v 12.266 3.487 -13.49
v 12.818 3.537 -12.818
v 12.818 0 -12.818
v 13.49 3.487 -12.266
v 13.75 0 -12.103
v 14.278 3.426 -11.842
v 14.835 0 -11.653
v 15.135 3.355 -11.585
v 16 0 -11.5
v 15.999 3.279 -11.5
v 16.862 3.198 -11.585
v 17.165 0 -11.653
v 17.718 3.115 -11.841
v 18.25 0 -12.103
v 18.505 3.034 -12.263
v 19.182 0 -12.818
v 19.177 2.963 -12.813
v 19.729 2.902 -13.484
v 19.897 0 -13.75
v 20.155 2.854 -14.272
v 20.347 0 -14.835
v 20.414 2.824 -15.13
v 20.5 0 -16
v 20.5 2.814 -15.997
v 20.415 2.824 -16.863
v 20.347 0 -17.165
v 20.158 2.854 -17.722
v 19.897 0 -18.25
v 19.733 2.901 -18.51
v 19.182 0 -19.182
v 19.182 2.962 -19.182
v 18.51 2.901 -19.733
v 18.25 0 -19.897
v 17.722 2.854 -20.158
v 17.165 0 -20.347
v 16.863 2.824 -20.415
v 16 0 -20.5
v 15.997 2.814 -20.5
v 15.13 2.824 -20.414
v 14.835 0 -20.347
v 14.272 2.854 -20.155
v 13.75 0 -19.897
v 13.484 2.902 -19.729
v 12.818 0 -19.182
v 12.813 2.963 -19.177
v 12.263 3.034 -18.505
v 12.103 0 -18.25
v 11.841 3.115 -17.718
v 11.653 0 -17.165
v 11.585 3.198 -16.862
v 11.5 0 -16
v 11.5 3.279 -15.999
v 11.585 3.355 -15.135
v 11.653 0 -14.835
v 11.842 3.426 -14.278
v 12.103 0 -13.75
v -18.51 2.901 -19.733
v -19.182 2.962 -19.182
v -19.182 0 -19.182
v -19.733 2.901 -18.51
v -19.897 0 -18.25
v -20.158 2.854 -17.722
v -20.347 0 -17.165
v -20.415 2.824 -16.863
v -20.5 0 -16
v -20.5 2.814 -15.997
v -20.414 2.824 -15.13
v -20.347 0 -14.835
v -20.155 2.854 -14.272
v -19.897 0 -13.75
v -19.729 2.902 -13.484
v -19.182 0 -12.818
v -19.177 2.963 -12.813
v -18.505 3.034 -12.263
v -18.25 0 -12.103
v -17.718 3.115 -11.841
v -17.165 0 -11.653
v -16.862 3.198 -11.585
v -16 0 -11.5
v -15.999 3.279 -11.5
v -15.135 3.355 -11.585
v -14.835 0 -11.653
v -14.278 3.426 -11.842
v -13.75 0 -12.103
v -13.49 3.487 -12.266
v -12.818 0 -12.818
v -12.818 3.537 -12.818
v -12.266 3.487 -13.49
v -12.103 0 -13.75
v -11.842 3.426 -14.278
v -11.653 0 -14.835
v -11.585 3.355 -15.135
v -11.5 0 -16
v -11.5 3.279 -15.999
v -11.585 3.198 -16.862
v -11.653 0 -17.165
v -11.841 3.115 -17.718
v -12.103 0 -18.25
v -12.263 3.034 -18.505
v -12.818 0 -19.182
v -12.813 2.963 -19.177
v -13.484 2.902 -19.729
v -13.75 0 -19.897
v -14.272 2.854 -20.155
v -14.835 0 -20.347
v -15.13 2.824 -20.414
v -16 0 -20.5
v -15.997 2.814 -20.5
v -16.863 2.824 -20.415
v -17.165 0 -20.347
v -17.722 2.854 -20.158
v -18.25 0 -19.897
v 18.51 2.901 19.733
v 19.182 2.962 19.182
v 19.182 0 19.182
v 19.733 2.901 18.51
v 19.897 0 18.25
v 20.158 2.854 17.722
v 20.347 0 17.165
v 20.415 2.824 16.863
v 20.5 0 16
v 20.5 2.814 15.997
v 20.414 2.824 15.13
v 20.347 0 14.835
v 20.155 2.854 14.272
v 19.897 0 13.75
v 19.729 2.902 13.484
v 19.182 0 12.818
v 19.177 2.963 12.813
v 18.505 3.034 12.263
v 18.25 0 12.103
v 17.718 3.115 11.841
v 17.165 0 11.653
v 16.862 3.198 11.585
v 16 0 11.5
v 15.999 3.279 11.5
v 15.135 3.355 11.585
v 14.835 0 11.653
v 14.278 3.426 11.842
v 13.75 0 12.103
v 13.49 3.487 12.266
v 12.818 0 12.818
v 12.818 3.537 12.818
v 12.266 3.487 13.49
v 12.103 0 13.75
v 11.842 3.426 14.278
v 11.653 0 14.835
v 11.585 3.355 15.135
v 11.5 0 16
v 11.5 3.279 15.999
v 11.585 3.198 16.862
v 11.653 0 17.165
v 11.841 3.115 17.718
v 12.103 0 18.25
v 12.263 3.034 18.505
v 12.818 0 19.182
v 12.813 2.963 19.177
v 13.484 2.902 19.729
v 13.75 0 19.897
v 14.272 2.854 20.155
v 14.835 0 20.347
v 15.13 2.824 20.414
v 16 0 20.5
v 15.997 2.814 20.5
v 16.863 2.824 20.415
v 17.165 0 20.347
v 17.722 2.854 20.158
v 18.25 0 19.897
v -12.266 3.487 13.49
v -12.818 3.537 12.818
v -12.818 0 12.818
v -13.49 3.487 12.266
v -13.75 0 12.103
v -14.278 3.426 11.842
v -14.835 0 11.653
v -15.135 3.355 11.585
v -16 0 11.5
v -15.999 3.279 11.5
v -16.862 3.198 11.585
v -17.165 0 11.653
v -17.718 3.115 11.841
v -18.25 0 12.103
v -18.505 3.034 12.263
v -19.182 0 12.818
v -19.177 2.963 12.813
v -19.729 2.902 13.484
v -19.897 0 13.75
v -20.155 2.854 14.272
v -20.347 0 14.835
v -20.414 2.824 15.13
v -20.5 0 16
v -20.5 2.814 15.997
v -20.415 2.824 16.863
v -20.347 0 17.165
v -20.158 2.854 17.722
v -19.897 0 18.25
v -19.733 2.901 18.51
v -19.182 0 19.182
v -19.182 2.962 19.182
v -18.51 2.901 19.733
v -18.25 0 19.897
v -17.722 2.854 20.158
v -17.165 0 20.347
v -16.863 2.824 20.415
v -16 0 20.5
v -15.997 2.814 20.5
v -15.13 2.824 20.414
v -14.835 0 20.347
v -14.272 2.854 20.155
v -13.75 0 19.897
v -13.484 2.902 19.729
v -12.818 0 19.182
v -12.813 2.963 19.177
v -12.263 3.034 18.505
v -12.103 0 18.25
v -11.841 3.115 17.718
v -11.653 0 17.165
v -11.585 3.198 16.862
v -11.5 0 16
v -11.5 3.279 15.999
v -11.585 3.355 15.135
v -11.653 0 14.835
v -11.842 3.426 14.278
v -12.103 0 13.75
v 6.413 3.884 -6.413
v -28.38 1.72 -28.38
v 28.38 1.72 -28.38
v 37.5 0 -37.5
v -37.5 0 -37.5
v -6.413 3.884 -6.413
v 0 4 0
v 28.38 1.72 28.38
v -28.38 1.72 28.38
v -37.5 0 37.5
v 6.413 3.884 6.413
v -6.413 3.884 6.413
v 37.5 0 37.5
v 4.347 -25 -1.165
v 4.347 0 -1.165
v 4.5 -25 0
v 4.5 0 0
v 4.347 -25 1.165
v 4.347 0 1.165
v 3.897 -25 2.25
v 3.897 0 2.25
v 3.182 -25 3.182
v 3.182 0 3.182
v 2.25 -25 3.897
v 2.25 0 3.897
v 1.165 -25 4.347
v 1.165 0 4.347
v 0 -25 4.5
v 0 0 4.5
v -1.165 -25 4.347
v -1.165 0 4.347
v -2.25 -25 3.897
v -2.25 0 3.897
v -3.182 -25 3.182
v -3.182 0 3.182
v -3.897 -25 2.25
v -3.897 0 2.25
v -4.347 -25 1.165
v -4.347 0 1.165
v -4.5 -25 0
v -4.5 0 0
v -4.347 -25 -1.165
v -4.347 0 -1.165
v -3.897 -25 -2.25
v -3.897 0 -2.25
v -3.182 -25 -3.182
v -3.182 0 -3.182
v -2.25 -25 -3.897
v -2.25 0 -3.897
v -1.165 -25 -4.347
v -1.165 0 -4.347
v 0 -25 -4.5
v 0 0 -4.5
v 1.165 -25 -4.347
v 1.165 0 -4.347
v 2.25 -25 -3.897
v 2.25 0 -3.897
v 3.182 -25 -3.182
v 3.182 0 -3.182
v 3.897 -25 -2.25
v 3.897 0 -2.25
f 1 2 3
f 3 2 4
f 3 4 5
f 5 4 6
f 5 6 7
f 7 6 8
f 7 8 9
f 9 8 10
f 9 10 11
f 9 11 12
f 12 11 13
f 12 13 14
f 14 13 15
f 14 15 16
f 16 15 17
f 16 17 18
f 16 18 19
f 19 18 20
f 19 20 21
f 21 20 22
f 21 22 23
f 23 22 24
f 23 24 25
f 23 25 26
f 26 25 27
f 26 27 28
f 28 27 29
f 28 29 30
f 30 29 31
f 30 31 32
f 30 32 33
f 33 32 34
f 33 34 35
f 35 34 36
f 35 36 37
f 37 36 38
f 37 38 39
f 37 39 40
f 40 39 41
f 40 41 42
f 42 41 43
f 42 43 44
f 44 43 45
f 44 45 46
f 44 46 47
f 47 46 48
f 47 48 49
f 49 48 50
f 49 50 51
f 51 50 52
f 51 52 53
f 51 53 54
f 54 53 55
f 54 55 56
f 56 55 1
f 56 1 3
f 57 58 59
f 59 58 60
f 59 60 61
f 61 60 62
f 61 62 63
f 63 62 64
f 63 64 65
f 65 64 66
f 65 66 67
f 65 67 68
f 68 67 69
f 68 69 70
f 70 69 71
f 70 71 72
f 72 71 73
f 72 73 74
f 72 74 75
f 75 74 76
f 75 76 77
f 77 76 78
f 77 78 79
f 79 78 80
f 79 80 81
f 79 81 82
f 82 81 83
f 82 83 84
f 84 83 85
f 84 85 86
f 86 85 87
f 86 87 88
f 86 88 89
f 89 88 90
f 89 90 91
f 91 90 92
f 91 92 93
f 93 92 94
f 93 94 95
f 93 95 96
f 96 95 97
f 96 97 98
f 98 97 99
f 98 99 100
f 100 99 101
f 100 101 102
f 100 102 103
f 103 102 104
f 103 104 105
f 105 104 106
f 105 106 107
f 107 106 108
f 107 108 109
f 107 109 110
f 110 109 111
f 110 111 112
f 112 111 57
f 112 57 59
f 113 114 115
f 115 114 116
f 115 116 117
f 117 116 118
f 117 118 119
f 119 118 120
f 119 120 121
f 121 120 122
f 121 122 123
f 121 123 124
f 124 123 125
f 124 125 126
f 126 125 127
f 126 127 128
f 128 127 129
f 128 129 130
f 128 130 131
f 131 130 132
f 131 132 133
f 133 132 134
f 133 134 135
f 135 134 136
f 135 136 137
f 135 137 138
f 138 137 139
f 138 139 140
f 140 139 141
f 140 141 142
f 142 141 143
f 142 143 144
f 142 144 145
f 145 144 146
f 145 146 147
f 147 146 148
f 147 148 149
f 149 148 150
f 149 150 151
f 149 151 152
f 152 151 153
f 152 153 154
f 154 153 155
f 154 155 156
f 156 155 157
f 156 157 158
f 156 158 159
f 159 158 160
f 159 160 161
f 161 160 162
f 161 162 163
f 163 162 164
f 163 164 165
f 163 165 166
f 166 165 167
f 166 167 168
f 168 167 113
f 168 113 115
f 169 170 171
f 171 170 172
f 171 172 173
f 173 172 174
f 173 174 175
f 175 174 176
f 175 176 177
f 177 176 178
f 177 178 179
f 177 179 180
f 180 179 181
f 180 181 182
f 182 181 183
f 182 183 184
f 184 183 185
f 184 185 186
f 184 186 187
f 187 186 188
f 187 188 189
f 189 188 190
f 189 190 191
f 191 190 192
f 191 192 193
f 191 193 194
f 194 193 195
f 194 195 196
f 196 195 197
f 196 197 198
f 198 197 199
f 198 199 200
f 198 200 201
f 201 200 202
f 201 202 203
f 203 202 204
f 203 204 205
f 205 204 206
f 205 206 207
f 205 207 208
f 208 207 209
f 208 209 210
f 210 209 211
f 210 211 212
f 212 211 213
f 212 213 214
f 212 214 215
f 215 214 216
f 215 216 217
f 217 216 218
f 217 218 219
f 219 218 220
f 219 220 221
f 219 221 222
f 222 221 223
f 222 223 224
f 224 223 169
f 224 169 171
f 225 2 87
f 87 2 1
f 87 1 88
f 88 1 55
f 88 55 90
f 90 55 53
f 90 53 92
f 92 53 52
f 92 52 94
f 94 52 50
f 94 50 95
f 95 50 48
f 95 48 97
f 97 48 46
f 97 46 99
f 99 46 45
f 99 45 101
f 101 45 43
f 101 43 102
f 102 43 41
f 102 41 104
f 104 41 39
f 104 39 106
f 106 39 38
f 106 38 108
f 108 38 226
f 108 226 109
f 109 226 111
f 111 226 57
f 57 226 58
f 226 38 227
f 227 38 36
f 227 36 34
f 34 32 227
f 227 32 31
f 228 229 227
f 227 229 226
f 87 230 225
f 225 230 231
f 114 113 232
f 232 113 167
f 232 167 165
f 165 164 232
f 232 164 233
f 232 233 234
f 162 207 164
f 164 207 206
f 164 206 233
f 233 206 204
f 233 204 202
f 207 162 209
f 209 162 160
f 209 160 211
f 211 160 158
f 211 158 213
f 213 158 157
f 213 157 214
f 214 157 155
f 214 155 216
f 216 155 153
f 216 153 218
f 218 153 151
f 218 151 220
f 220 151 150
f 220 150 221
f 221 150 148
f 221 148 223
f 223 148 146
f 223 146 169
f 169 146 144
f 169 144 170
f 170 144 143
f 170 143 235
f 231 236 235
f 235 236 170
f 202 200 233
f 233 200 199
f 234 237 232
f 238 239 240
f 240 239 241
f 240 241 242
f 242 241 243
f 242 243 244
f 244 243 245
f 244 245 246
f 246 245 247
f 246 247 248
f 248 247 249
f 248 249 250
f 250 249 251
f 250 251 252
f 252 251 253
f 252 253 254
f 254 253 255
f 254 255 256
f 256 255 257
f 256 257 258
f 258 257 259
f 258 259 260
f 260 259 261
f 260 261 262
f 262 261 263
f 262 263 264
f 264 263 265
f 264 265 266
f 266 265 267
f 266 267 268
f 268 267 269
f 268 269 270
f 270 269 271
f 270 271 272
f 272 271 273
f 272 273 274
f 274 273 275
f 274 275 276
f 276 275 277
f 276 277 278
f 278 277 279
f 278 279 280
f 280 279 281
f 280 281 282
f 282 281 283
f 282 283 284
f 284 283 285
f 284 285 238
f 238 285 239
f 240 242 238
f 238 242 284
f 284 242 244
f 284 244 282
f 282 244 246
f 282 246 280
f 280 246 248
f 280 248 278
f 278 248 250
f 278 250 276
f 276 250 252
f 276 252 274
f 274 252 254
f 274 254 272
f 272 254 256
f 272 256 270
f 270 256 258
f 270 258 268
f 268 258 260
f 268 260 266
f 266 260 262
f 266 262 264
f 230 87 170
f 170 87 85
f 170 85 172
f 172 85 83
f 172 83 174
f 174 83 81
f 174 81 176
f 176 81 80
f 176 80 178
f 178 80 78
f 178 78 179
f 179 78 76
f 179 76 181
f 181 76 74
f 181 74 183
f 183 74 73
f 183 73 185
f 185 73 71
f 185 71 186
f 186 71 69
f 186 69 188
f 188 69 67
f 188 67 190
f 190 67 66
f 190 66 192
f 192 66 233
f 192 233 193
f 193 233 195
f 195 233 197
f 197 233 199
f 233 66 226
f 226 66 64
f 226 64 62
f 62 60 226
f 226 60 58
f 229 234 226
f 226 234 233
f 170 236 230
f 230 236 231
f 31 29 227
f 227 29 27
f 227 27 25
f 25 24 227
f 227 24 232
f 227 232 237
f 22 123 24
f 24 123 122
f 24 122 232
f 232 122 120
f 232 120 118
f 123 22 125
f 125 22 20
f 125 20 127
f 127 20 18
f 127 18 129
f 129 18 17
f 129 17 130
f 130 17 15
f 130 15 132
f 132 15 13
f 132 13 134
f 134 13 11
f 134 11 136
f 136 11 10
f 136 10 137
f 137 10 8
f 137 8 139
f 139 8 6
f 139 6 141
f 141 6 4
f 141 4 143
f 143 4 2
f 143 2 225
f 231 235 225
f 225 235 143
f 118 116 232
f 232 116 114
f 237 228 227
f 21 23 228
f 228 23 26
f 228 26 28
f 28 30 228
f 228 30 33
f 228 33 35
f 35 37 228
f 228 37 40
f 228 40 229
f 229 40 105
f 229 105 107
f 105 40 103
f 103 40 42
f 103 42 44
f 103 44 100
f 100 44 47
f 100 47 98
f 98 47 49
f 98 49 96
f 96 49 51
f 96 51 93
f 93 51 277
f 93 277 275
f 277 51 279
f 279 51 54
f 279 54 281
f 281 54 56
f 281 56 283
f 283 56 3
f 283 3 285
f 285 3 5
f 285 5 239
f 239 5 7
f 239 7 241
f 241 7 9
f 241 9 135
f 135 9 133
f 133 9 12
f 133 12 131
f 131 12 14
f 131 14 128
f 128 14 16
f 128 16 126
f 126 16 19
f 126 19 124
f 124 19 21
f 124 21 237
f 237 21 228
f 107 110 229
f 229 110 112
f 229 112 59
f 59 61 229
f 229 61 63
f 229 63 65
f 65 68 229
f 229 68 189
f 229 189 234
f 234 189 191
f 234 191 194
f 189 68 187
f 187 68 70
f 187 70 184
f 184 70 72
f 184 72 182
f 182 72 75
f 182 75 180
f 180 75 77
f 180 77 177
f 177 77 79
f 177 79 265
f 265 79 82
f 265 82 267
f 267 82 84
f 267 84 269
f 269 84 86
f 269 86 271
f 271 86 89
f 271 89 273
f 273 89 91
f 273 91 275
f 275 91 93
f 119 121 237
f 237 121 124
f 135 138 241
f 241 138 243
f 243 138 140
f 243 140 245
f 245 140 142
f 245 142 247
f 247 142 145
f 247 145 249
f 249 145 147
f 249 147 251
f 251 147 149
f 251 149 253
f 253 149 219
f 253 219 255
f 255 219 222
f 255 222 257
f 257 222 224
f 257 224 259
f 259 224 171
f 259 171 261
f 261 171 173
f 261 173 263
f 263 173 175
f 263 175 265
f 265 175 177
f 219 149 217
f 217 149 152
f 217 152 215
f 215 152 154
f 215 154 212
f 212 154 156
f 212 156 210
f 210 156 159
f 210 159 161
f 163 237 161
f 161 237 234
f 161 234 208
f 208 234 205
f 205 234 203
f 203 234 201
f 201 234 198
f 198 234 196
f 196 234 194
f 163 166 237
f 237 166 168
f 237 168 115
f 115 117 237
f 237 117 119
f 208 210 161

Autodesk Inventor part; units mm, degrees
ref_plane "YZ Plane" through (0, 0, 0) normal (1, 0, 0) x (0, 1, 0)
ref_plane "XZ Plane" through (0, 0, 0) normal (0, 1, 0) x (-1, 0, 0)
ref_plane "XY Plane" through (0, 0, 0) normal (0, 0, 1) x (1, 0, 0)
sketch "Sketch1" plane through (0, 0, 0) normal (0, 1, 0) x (-1, 0, 0)
  line L0 (37.5, -37.5) -> (-37.5, -37.5)
  line L1 (-37.5, -37.5) -> (-37.5, 37.5)
  line L2 (-37.5, 37.5) -> (37.5, 37.5)
  line L3 (37.5, 37.5) -> (37.5, -37.5)
  line L4 (37.5, -37.5) -> (-37.5, 37.5) construction
  line L5 (-37.5, -37.5) -> (37.5, 37.5) construction
  point P0 (0, 0)
  dimension "d0" = 75
  dimension "d1" = 75
sketch "Sketch2" plane through (0, 0, 0) normal (0, 1, 0) x (-1, 0, 0)
  line L0 (-25, -25) -> (25, -25)
  line L1 (25, -25) -> (25, 25)
  line L2 (25, 25) -> (-25, 25)
  line L3 (-25, 25) -> (-25, -25)
  line L4 (-25, -25) -> (25, 25) construction
  line L5 (25, -25) -> (-25, 25) construction
  point P0 (0, 0)
  dimension "d2" = 50
  dimension "d3" = 50
extrude "Extrusion1" add sketch "Sketch1" along normal blind 4
extrude "Extrusion2" [suppressed]
sketch "Sketch3" plane through (37.5, 0, 37.5) normal (1, 0, 0) x (0, 0, -1)
  line L0 (75, 4) -> (0, 4) projected
  line L1 (0, 0) -> (75, 0) projected
  line L2 (0, 0) -> (75, 0)
  arc A0 (75, 0) -> (0, 0) centre (37.5, -173.7812) ccw
  point P0 (37.5, 4)
extrude "Extrusion3" cut sketch "Sketch3" against normal through all keep common part
sketch "Sketch4" plane through (37.5, 0, -37.5) normal (0, 0, -1) x (-1, 0, 0)
  line L0 (75, 0) -> (75, 4) projected
  line L1 (0, 0) -> (75, 0)
  line L2 (0, 0) -> (0, 4) projected
  line L3 (75, 0) -> (0, 0) projected
  arc A0 (75, 0) -> (0, 0) centre (37.5, -173.7813) ccw
  point P0 (37.5, 0)
extrude "Extrusion4" cut sketch "Sketch4" against normal through all keep common part
sketch "Sketch5" plane through (0, 0, 0) normal (0, -1, 0) x (1, 0, 0)
  circle A0 centre (0, 0) radius 4.5
  dimension "d14" = 9
extrude "Extrusion5" add sketch "Sketch5" along normal blind 25
sketch "Sketch6" plane through (0, 0, 0) normal (0, -1, 0) x (1, 0, 0)
  circle A0 centre (-16, -16) radius 4.5
  circle A1 centre (16, 16) radius 4.5
  line L0 (0, 0) -> (37.5, 37.5) projected
  circle A2 centre (16, -16) radius 4.5
  circle A3 centre (-16, 16) radius 4.5
  point P0 (0, 0)
  dimension "d17" = 9
  dimension "d18" = 9
  dimension "d19" = 16
  dimension "d20" = 16
  dimension "d21" = 16
  dimension "d22" = 16
  dimension "d25" = 9
  dimension "d26" = 9
extrude "Extrusion6" cut sketch "Sketch6" against normal through all
properties part number "thumper-bumper-trigger"
